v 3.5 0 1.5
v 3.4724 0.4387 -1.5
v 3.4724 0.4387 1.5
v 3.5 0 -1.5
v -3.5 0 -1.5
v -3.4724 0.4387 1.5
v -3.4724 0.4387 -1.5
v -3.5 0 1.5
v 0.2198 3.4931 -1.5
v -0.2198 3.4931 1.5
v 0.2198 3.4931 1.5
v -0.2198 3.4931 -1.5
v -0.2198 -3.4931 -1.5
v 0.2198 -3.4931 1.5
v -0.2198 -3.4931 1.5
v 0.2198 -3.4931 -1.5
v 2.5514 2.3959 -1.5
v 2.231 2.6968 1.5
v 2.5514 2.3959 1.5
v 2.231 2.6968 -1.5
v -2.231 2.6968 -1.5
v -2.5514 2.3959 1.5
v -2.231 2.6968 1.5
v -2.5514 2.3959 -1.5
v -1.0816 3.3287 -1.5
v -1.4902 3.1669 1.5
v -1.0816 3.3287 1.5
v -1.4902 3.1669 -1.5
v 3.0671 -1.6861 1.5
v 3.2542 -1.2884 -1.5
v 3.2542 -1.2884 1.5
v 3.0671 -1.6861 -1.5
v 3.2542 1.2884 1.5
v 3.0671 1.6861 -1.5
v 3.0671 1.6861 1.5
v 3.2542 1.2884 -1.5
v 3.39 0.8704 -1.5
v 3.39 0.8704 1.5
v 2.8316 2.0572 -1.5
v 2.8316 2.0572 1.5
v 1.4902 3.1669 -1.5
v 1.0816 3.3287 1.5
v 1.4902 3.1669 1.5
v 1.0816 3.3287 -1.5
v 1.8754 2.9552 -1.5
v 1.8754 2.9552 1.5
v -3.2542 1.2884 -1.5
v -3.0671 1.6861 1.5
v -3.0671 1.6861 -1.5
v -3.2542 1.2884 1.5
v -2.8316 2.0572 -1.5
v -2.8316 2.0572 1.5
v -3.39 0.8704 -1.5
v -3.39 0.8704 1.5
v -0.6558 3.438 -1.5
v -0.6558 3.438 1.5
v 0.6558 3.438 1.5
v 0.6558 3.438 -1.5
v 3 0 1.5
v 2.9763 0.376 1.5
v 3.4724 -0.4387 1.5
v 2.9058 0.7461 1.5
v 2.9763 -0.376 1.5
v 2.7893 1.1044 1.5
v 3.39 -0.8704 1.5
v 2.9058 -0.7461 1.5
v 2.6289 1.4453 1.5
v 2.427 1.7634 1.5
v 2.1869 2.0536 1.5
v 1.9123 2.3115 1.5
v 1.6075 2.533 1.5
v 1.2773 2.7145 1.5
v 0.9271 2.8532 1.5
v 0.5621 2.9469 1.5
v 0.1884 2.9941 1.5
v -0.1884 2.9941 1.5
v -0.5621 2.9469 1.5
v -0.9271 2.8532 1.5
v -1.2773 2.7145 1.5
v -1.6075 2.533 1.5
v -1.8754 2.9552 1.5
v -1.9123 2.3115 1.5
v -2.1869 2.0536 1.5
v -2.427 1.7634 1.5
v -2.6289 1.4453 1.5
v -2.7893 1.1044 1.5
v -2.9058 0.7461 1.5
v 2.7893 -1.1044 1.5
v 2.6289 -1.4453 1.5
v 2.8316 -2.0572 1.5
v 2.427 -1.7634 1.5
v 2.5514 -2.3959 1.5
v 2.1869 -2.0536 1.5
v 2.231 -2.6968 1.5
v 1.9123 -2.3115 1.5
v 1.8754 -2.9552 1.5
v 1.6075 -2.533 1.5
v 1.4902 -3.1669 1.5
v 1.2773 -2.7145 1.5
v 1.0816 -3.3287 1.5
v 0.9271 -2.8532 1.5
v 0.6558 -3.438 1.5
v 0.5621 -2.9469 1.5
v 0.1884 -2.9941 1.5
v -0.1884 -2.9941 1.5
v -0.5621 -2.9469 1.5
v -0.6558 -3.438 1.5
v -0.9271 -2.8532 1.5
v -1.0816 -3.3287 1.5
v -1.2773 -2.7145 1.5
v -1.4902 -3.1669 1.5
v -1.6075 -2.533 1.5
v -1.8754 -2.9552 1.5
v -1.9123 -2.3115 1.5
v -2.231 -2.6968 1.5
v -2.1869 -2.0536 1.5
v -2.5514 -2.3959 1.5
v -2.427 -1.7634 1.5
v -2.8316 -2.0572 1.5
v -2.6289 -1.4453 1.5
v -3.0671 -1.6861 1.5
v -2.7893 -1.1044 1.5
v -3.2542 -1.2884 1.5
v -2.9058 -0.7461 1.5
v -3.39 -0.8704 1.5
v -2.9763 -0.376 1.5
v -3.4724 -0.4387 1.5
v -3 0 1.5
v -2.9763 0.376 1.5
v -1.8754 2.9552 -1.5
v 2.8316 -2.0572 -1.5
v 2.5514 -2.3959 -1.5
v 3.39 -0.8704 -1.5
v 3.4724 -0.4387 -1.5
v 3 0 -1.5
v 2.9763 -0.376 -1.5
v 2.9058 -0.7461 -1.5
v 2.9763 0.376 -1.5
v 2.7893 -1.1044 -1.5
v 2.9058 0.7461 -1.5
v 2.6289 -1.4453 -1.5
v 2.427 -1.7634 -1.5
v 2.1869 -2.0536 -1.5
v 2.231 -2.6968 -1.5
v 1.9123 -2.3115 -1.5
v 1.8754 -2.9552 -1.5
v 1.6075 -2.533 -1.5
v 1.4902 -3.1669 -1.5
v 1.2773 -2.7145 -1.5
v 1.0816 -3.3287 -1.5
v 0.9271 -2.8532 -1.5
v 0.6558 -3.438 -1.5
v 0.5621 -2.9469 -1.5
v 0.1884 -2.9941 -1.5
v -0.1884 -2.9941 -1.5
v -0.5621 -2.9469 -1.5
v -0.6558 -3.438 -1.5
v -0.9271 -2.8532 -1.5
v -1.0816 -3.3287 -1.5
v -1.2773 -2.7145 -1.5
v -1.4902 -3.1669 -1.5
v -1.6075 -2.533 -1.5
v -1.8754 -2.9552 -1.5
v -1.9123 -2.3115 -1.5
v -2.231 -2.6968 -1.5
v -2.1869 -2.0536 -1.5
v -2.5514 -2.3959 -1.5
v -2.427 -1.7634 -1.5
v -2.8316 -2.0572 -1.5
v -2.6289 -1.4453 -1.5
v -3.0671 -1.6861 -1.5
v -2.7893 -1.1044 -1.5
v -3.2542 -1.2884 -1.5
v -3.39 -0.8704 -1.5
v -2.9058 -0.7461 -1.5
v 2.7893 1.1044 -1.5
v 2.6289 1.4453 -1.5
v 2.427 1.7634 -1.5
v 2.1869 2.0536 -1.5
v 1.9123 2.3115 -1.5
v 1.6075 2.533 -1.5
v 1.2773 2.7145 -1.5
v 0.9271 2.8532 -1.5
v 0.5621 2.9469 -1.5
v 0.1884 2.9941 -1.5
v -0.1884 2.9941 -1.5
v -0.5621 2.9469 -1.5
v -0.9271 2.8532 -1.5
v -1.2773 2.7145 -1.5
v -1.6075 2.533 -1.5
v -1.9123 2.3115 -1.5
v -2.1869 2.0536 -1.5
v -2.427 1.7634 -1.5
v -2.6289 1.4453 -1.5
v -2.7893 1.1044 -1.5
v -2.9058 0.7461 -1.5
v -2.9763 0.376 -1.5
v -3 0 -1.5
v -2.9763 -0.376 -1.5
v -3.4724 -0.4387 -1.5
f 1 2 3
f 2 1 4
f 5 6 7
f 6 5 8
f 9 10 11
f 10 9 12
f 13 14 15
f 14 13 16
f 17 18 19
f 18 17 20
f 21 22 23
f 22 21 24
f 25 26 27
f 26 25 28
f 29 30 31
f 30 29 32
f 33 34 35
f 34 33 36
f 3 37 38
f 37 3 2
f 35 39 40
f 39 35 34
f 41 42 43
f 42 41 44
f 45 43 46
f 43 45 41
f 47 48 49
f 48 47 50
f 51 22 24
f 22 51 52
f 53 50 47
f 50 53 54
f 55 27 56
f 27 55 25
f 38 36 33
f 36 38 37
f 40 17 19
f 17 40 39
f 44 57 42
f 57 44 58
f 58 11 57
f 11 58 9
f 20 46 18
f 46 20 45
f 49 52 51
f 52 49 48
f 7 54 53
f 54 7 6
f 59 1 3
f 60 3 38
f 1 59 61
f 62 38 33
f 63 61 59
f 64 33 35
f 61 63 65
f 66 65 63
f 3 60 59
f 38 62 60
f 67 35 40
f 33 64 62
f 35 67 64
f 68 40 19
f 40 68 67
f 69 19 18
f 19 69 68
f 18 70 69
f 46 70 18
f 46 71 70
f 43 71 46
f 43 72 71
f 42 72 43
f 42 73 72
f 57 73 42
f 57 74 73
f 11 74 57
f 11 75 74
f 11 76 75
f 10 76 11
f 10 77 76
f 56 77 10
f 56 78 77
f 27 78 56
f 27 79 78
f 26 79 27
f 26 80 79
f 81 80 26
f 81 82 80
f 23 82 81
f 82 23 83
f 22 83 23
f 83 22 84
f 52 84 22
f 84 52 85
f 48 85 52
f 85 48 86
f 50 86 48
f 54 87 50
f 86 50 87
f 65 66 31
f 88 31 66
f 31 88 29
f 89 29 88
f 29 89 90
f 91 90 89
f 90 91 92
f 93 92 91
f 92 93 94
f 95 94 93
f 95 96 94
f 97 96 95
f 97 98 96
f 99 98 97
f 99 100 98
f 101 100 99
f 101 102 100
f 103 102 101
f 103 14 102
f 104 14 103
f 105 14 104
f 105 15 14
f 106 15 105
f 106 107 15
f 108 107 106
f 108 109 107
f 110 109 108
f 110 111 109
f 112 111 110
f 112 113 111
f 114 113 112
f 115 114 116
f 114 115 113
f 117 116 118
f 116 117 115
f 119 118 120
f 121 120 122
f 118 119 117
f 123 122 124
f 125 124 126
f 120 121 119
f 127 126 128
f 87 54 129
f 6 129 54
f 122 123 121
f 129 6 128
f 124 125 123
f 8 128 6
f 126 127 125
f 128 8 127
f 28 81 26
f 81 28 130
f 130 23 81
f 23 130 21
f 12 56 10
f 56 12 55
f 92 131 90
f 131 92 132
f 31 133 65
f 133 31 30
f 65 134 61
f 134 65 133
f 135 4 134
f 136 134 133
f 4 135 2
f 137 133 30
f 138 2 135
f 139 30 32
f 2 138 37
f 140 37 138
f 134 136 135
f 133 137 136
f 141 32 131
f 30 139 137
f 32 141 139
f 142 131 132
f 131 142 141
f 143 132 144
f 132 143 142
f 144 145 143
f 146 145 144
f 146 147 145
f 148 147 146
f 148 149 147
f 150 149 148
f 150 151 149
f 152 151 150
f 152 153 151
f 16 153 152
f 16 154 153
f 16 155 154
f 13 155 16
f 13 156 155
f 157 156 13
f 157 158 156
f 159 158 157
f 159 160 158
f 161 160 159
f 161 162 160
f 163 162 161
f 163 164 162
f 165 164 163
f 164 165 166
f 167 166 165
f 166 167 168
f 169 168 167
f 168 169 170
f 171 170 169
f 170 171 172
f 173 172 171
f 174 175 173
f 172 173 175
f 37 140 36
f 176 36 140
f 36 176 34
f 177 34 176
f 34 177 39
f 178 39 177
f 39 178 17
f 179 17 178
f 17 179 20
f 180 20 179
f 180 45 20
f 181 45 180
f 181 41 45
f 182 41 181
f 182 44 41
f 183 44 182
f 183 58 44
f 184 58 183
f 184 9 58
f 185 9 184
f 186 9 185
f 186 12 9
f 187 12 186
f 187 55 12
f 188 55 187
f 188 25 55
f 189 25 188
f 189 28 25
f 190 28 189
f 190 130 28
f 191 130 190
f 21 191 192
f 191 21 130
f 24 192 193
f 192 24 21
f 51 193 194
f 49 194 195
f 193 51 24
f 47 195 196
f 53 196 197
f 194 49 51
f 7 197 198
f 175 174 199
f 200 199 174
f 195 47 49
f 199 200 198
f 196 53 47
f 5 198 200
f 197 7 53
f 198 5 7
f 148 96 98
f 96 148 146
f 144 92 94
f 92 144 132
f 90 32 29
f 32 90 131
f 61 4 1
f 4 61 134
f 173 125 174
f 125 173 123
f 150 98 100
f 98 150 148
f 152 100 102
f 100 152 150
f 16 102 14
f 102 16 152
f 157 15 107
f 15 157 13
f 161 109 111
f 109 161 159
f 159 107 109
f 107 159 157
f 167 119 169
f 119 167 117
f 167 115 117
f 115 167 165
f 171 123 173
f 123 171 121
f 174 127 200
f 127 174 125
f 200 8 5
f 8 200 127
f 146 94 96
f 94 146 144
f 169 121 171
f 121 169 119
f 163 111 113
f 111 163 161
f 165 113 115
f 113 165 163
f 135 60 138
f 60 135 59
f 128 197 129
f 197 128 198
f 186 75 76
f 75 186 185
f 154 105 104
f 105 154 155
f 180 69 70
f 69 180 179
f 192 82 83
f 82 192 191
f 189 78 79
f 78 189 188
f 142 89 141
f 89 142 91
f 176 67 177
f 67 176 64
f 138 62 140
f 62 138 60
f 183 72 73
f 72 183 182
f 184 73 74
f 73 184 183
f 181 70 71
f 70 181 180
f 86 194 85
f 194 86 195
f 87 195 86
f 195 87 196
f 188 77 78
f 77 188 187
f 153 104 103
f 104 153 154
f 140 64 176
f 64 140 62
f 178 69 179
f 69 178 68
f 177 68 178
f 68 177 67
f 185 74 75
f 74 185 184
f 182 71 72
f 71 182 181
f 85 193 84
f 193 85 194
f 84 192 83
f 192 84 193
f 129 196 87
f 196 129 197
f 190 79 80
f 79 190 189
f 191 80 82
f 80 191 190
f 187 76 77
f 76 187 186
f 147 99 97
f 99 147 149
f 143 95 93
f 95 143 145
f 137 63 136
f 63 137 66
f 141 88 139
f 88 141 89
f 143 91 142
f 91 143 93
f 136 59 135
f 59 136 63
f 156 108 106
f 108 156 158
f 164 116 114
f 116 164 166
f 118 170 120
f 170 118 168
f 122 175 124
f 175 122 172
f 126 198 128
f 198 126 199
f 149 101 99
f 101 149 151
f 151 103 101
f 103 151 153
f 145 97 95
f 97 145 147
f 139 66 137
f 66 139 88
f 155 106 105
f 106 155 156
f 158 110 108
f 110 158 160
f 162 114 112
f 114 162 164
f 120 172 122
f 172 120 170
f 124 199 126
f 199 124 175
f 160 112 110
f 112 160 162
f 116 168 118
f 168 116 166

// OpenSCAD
$fn = 50;


difference() {
	union() {
		translate(v = [0, 0, -1.5000000000]) {
			cylinder(h = 3, r = 3.5000000000);
		}
	}
	union() {
		translate(v = [0, 0, -100.0000000000]) {
			cylinder(h = 200, r = 3);
		}
	}
}
